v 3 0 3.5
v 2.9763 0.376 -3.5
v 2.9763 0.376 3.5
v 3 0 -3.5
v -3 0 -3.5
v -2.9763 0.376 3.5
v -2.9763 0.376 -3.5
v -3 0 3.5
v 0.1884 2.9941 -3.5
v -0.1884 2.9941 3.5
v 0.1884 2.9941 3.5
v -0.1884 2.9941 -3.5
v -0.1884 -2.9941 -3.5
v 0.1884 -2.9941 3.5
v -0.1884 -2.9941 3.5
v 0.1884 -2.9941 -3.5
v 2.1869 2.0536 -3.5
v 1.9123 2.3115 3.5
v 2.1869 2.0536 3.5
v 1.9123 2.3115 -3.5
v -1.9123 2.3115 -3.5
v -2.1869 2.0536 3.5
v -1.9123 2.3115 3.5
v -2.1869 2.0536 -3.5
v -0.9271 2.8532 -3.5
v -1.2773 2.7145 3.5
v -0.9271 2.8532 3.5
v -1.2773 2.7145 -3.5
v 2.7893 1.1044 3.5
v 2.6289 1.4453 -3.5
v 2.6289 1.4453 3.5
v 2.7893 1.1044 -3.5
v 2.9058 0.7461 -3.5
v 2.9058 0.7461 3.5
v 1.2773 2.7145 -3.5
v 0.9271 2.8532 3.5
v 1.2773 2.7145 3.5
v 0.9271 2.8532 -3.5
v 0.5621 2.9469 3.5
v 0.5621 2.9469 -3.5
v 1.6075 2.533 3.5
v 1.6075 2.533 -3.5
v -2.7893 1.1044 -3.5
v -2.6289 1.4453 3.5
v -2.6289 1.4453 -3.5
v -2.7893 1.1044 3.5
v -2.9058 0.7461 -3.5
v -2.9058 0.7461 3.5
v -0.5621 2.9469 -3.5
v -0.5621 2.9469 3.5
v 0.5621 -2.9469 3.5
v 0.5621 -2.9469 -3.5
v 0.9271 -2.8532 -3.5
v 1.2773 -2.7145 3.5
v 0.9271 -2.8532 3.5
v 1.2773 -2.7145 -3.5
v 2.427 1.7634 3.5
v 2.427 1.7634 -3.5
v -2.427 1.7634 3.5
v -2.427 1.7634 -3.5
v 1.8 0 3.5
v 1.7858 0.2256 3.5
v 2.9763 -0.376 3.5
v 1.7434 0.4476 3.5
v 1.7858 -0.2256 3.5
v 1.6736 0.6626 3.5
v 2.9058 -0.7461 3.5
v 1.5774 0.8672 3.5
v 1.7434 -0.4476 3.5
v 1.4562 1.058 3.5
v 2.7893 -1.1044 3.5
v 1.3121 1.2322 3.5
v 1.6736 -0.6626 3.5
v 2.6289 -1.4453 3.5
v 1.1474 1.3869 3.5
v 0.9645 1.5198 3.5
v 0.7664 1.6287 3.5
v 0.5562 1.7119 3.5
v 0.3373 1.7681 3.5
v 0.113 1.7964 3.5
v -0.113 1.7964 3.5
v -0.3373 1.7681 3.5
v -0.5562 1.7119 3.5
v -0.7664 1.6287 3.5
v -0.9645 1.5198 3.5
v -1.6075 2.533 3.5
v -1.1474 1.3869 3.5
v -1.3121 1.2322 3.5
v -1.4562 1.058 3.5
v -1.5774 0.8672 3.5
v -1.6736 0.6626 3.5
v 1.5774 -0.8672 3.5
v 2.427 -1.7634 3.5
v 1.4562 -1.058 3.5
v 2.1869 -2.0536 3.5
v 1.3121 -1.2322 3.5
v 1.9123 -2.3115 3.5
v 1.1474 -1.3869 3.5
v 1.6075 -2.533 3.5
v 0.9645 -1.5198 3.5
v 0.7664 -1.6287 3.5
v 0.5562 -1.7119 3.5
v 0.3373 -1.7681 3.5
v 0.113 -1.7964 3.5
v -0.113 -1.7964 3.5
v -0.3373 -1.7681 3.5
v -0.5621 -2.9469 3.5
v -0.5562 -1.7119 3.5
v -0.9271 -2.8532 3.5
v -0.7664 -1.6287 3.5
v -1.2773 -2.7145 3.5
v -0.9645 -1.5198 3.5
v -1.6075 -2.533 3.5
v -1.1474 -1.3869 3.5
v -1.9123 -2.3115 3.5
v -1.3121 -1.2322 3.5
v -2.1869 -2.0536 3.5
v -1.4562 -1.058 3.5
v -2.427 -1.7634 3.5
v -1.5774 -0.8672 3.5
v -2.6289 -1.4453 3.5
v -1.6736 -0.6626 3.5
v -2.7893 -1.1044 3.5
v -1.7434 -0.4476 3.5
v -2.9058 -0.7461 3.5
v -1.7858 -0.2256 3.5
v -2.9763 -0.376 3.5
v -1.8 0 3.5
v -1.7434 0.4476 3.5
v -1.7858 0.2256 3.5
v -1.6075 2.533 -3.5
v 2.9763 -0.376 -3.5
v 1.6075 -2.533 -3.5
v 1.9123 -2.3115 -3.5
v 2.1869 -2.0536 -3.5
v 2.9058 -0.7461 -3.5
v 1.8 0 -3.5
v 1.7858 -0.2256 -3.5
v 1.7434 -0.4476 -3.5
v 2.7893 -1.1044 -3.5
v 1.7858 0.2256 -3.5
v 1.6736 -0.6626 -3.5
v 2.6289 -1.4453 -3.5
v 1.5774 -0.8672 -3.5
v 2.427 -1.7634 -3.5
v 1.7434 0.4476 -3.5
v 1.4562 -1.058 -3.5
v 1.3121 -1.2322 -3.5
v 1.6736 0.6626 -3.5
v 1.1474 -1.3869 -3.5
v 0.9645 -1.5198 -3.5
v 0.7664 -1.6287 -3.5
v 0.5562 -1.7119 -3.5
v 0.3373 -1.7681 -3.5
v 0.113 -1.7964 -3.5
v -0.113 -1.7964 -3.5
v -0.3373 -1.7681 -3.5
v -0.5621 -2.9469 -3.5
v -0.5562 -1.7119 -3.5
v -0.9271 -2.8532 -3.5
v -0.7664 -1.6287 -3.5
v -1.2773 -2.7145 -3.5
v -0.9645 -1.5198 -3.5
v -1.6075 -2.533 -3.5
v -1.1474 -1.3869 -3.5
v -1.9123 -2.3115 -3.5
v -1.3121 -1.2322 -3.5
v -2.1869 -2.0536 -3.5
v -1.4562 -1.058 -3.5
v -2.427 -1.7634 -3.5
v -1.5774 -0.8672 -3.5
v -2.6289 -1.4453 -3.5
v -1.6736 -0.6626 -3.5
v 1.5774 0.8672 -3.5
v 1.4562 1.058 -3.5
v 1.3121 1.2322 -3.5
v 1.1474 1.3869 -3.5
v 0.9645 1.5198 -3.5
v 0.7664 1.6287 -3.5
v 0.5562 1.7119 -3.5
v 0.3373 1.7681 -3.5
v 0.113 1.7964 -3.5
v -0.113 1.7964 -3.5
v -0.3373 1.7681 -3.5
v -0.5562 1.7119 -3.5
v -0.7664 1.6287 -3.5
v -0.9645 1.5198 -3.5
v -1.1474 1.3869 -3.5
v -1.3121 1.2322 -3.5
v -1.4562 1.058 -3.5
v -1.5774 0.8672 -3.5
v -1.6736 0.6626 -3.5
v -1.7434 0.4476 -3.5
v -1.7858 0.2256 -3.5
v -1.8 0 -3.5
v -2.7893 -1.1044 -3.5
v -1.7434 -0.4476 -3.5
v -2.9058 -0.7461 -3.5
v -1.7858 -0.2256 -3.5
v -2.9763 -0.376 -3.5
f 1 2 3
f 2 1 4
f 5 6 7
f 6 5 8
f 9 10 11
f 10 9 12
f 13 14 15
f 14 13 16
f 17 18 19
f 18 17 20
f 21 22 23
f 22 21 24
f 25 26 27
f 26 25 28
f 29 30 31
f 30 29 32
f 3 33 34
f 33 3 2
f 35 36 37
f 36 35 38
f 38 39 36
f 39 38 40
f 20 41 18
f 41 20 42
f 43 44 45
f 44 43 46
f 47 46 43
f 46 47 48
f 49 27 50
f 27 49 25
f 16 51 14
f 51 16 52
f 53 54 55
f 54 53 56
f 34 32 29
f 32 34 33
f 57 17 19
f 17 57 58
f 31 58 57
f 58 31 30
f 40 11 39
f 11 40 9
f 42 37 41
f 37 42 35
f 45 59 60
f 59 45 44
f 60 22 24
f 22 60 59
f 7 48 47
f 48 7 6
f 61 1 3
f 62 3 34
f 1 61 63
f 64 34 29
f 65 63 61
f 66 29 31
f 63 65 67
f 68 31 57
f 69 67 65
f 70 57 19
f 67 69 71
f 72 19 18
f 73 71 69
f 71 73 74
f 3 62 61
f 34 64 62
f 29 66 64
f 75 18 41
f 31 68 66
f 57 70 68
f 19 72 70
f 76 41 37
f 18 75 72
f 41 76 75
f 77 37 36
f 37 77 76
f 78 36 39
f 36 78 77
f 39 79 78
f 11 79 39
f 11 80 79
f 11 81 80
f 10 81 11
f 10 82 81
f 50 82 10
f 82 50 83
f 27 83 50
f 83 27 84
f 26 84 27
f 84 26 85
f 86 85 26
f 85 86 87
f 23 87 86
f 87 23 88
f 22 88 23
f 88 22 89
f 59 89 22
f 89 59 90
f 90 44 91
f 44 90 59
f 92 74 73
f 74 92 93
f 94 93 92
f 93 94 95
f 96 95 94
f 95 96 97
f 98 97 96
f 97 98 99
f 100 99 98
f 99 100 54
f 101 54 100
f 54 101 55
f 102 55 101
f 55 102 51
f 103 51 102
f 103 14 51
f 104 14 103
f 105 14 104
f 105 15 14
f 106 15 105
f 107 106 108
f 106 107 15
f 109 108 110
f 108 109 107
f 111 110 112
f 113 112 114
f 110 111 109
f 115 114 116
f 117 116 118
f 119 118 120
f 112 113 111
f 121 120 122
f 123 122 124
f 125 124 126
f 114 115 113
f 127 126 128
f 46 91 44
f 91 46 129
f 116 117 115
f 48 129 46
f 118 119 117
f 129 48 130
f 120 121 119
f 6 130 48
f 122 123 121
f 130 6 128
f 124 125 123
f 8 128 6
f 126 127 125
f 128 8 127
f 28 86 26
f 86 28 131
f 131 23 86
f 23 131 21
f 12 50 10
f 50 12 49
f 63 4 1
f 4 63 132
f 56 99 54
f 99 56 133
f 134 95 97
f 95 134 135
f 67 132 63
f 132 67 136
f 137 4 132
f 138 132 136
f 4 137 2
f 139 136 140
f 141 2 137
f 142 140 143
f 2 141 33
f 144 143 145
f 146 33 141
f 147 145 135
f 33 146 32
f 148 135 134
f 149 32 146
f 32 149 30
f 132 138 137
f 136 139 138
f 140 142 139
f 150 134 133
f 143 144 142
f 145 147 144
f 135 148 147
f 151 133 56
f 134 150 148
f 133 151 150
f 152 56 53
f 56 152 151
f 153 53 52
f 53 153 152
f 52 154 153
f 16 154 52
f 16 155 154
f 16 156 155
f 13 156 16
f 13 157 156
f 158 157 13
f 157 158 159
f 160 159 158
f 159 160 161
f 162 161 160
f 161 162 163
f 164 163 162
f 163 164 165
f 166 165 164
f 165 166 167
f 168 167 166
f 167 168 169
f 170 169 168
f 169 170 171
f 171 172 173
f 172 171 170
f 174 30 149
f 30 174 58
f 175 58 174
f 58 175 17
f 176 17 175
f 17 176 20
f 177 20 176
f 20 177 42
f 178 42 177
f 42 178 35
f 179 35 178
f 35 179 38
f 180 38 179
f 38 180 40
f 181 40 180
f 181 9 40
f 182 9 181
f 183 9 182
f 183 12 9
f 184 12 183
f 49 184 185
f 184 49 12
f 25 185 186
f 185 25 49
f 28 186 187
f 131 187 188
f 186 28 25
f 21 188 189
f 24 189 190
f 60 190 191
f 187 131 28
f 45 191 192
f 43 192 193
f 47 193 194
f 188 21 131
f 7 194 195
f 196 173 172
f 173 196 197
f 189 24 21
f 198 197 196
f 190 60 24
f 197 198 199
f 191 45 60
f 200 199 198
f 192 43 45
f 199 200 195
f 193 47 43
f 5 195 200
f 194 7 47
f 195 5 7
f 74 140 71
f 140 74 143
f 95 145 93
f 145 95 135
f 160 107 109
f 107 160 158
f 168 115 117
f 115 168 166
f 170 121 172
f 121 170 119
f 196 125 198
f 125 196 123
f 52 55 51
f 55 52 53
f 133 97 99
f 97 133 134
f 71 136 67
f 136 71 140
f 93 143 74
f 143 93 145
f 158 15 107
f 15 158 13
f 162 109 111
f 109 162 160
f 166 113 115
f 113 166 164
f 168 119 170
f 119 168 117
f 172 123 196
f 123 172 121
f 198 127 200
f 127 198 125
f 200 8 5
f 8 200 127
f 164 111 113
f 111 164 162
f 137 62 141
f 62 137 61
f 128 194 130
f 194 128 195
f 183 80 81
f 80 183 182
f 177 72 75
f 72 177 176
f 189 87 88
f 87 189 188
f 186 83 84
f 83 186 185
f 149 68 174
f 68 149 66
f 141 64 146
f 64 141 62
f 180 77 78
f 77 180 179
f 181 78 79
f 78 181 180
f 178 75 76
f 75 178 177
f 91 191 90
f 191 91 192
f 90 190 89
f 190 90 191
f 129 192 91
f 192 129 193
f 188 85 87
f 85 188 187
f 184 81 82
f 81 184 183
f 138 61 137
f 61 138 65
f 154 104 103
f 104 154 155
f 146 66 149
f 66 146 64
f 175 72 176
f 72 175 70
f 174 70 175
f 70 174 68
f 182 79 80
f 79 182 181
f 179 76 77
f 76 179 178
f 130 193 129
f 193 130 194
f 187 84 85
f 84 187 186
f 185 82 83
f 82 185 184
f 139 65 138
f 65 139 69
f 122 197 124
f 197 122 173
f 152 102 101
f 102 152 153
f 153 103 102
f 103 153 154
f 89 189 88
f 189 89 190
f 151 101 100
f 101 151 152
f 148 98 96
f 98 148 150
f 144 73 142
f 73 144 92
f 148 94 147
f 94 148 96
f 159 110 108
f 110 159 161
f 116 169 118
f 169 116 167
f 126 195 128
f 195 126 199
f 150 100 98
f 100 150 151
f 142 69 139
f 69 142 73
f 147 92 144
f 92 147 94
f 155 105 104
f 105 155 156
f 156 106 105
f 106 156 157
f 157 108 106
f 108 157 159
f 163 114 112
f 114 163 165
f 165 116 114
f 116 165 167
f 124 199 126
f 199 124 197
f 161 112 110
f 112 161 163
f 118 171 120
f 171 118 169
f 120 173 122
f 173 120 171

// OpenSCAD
$fn = 50;


difference() {
	union() {
		translate(v = [0, 0, -3.5000000000]) {
			cylinder(h = 7, r = 3.0000000000);
		}
	}
	union() {
		translate(v = [0, 0, -100.0000000000]) {
			cylinder(h = 200, r = 1.8000000000);
		}
	}
}
